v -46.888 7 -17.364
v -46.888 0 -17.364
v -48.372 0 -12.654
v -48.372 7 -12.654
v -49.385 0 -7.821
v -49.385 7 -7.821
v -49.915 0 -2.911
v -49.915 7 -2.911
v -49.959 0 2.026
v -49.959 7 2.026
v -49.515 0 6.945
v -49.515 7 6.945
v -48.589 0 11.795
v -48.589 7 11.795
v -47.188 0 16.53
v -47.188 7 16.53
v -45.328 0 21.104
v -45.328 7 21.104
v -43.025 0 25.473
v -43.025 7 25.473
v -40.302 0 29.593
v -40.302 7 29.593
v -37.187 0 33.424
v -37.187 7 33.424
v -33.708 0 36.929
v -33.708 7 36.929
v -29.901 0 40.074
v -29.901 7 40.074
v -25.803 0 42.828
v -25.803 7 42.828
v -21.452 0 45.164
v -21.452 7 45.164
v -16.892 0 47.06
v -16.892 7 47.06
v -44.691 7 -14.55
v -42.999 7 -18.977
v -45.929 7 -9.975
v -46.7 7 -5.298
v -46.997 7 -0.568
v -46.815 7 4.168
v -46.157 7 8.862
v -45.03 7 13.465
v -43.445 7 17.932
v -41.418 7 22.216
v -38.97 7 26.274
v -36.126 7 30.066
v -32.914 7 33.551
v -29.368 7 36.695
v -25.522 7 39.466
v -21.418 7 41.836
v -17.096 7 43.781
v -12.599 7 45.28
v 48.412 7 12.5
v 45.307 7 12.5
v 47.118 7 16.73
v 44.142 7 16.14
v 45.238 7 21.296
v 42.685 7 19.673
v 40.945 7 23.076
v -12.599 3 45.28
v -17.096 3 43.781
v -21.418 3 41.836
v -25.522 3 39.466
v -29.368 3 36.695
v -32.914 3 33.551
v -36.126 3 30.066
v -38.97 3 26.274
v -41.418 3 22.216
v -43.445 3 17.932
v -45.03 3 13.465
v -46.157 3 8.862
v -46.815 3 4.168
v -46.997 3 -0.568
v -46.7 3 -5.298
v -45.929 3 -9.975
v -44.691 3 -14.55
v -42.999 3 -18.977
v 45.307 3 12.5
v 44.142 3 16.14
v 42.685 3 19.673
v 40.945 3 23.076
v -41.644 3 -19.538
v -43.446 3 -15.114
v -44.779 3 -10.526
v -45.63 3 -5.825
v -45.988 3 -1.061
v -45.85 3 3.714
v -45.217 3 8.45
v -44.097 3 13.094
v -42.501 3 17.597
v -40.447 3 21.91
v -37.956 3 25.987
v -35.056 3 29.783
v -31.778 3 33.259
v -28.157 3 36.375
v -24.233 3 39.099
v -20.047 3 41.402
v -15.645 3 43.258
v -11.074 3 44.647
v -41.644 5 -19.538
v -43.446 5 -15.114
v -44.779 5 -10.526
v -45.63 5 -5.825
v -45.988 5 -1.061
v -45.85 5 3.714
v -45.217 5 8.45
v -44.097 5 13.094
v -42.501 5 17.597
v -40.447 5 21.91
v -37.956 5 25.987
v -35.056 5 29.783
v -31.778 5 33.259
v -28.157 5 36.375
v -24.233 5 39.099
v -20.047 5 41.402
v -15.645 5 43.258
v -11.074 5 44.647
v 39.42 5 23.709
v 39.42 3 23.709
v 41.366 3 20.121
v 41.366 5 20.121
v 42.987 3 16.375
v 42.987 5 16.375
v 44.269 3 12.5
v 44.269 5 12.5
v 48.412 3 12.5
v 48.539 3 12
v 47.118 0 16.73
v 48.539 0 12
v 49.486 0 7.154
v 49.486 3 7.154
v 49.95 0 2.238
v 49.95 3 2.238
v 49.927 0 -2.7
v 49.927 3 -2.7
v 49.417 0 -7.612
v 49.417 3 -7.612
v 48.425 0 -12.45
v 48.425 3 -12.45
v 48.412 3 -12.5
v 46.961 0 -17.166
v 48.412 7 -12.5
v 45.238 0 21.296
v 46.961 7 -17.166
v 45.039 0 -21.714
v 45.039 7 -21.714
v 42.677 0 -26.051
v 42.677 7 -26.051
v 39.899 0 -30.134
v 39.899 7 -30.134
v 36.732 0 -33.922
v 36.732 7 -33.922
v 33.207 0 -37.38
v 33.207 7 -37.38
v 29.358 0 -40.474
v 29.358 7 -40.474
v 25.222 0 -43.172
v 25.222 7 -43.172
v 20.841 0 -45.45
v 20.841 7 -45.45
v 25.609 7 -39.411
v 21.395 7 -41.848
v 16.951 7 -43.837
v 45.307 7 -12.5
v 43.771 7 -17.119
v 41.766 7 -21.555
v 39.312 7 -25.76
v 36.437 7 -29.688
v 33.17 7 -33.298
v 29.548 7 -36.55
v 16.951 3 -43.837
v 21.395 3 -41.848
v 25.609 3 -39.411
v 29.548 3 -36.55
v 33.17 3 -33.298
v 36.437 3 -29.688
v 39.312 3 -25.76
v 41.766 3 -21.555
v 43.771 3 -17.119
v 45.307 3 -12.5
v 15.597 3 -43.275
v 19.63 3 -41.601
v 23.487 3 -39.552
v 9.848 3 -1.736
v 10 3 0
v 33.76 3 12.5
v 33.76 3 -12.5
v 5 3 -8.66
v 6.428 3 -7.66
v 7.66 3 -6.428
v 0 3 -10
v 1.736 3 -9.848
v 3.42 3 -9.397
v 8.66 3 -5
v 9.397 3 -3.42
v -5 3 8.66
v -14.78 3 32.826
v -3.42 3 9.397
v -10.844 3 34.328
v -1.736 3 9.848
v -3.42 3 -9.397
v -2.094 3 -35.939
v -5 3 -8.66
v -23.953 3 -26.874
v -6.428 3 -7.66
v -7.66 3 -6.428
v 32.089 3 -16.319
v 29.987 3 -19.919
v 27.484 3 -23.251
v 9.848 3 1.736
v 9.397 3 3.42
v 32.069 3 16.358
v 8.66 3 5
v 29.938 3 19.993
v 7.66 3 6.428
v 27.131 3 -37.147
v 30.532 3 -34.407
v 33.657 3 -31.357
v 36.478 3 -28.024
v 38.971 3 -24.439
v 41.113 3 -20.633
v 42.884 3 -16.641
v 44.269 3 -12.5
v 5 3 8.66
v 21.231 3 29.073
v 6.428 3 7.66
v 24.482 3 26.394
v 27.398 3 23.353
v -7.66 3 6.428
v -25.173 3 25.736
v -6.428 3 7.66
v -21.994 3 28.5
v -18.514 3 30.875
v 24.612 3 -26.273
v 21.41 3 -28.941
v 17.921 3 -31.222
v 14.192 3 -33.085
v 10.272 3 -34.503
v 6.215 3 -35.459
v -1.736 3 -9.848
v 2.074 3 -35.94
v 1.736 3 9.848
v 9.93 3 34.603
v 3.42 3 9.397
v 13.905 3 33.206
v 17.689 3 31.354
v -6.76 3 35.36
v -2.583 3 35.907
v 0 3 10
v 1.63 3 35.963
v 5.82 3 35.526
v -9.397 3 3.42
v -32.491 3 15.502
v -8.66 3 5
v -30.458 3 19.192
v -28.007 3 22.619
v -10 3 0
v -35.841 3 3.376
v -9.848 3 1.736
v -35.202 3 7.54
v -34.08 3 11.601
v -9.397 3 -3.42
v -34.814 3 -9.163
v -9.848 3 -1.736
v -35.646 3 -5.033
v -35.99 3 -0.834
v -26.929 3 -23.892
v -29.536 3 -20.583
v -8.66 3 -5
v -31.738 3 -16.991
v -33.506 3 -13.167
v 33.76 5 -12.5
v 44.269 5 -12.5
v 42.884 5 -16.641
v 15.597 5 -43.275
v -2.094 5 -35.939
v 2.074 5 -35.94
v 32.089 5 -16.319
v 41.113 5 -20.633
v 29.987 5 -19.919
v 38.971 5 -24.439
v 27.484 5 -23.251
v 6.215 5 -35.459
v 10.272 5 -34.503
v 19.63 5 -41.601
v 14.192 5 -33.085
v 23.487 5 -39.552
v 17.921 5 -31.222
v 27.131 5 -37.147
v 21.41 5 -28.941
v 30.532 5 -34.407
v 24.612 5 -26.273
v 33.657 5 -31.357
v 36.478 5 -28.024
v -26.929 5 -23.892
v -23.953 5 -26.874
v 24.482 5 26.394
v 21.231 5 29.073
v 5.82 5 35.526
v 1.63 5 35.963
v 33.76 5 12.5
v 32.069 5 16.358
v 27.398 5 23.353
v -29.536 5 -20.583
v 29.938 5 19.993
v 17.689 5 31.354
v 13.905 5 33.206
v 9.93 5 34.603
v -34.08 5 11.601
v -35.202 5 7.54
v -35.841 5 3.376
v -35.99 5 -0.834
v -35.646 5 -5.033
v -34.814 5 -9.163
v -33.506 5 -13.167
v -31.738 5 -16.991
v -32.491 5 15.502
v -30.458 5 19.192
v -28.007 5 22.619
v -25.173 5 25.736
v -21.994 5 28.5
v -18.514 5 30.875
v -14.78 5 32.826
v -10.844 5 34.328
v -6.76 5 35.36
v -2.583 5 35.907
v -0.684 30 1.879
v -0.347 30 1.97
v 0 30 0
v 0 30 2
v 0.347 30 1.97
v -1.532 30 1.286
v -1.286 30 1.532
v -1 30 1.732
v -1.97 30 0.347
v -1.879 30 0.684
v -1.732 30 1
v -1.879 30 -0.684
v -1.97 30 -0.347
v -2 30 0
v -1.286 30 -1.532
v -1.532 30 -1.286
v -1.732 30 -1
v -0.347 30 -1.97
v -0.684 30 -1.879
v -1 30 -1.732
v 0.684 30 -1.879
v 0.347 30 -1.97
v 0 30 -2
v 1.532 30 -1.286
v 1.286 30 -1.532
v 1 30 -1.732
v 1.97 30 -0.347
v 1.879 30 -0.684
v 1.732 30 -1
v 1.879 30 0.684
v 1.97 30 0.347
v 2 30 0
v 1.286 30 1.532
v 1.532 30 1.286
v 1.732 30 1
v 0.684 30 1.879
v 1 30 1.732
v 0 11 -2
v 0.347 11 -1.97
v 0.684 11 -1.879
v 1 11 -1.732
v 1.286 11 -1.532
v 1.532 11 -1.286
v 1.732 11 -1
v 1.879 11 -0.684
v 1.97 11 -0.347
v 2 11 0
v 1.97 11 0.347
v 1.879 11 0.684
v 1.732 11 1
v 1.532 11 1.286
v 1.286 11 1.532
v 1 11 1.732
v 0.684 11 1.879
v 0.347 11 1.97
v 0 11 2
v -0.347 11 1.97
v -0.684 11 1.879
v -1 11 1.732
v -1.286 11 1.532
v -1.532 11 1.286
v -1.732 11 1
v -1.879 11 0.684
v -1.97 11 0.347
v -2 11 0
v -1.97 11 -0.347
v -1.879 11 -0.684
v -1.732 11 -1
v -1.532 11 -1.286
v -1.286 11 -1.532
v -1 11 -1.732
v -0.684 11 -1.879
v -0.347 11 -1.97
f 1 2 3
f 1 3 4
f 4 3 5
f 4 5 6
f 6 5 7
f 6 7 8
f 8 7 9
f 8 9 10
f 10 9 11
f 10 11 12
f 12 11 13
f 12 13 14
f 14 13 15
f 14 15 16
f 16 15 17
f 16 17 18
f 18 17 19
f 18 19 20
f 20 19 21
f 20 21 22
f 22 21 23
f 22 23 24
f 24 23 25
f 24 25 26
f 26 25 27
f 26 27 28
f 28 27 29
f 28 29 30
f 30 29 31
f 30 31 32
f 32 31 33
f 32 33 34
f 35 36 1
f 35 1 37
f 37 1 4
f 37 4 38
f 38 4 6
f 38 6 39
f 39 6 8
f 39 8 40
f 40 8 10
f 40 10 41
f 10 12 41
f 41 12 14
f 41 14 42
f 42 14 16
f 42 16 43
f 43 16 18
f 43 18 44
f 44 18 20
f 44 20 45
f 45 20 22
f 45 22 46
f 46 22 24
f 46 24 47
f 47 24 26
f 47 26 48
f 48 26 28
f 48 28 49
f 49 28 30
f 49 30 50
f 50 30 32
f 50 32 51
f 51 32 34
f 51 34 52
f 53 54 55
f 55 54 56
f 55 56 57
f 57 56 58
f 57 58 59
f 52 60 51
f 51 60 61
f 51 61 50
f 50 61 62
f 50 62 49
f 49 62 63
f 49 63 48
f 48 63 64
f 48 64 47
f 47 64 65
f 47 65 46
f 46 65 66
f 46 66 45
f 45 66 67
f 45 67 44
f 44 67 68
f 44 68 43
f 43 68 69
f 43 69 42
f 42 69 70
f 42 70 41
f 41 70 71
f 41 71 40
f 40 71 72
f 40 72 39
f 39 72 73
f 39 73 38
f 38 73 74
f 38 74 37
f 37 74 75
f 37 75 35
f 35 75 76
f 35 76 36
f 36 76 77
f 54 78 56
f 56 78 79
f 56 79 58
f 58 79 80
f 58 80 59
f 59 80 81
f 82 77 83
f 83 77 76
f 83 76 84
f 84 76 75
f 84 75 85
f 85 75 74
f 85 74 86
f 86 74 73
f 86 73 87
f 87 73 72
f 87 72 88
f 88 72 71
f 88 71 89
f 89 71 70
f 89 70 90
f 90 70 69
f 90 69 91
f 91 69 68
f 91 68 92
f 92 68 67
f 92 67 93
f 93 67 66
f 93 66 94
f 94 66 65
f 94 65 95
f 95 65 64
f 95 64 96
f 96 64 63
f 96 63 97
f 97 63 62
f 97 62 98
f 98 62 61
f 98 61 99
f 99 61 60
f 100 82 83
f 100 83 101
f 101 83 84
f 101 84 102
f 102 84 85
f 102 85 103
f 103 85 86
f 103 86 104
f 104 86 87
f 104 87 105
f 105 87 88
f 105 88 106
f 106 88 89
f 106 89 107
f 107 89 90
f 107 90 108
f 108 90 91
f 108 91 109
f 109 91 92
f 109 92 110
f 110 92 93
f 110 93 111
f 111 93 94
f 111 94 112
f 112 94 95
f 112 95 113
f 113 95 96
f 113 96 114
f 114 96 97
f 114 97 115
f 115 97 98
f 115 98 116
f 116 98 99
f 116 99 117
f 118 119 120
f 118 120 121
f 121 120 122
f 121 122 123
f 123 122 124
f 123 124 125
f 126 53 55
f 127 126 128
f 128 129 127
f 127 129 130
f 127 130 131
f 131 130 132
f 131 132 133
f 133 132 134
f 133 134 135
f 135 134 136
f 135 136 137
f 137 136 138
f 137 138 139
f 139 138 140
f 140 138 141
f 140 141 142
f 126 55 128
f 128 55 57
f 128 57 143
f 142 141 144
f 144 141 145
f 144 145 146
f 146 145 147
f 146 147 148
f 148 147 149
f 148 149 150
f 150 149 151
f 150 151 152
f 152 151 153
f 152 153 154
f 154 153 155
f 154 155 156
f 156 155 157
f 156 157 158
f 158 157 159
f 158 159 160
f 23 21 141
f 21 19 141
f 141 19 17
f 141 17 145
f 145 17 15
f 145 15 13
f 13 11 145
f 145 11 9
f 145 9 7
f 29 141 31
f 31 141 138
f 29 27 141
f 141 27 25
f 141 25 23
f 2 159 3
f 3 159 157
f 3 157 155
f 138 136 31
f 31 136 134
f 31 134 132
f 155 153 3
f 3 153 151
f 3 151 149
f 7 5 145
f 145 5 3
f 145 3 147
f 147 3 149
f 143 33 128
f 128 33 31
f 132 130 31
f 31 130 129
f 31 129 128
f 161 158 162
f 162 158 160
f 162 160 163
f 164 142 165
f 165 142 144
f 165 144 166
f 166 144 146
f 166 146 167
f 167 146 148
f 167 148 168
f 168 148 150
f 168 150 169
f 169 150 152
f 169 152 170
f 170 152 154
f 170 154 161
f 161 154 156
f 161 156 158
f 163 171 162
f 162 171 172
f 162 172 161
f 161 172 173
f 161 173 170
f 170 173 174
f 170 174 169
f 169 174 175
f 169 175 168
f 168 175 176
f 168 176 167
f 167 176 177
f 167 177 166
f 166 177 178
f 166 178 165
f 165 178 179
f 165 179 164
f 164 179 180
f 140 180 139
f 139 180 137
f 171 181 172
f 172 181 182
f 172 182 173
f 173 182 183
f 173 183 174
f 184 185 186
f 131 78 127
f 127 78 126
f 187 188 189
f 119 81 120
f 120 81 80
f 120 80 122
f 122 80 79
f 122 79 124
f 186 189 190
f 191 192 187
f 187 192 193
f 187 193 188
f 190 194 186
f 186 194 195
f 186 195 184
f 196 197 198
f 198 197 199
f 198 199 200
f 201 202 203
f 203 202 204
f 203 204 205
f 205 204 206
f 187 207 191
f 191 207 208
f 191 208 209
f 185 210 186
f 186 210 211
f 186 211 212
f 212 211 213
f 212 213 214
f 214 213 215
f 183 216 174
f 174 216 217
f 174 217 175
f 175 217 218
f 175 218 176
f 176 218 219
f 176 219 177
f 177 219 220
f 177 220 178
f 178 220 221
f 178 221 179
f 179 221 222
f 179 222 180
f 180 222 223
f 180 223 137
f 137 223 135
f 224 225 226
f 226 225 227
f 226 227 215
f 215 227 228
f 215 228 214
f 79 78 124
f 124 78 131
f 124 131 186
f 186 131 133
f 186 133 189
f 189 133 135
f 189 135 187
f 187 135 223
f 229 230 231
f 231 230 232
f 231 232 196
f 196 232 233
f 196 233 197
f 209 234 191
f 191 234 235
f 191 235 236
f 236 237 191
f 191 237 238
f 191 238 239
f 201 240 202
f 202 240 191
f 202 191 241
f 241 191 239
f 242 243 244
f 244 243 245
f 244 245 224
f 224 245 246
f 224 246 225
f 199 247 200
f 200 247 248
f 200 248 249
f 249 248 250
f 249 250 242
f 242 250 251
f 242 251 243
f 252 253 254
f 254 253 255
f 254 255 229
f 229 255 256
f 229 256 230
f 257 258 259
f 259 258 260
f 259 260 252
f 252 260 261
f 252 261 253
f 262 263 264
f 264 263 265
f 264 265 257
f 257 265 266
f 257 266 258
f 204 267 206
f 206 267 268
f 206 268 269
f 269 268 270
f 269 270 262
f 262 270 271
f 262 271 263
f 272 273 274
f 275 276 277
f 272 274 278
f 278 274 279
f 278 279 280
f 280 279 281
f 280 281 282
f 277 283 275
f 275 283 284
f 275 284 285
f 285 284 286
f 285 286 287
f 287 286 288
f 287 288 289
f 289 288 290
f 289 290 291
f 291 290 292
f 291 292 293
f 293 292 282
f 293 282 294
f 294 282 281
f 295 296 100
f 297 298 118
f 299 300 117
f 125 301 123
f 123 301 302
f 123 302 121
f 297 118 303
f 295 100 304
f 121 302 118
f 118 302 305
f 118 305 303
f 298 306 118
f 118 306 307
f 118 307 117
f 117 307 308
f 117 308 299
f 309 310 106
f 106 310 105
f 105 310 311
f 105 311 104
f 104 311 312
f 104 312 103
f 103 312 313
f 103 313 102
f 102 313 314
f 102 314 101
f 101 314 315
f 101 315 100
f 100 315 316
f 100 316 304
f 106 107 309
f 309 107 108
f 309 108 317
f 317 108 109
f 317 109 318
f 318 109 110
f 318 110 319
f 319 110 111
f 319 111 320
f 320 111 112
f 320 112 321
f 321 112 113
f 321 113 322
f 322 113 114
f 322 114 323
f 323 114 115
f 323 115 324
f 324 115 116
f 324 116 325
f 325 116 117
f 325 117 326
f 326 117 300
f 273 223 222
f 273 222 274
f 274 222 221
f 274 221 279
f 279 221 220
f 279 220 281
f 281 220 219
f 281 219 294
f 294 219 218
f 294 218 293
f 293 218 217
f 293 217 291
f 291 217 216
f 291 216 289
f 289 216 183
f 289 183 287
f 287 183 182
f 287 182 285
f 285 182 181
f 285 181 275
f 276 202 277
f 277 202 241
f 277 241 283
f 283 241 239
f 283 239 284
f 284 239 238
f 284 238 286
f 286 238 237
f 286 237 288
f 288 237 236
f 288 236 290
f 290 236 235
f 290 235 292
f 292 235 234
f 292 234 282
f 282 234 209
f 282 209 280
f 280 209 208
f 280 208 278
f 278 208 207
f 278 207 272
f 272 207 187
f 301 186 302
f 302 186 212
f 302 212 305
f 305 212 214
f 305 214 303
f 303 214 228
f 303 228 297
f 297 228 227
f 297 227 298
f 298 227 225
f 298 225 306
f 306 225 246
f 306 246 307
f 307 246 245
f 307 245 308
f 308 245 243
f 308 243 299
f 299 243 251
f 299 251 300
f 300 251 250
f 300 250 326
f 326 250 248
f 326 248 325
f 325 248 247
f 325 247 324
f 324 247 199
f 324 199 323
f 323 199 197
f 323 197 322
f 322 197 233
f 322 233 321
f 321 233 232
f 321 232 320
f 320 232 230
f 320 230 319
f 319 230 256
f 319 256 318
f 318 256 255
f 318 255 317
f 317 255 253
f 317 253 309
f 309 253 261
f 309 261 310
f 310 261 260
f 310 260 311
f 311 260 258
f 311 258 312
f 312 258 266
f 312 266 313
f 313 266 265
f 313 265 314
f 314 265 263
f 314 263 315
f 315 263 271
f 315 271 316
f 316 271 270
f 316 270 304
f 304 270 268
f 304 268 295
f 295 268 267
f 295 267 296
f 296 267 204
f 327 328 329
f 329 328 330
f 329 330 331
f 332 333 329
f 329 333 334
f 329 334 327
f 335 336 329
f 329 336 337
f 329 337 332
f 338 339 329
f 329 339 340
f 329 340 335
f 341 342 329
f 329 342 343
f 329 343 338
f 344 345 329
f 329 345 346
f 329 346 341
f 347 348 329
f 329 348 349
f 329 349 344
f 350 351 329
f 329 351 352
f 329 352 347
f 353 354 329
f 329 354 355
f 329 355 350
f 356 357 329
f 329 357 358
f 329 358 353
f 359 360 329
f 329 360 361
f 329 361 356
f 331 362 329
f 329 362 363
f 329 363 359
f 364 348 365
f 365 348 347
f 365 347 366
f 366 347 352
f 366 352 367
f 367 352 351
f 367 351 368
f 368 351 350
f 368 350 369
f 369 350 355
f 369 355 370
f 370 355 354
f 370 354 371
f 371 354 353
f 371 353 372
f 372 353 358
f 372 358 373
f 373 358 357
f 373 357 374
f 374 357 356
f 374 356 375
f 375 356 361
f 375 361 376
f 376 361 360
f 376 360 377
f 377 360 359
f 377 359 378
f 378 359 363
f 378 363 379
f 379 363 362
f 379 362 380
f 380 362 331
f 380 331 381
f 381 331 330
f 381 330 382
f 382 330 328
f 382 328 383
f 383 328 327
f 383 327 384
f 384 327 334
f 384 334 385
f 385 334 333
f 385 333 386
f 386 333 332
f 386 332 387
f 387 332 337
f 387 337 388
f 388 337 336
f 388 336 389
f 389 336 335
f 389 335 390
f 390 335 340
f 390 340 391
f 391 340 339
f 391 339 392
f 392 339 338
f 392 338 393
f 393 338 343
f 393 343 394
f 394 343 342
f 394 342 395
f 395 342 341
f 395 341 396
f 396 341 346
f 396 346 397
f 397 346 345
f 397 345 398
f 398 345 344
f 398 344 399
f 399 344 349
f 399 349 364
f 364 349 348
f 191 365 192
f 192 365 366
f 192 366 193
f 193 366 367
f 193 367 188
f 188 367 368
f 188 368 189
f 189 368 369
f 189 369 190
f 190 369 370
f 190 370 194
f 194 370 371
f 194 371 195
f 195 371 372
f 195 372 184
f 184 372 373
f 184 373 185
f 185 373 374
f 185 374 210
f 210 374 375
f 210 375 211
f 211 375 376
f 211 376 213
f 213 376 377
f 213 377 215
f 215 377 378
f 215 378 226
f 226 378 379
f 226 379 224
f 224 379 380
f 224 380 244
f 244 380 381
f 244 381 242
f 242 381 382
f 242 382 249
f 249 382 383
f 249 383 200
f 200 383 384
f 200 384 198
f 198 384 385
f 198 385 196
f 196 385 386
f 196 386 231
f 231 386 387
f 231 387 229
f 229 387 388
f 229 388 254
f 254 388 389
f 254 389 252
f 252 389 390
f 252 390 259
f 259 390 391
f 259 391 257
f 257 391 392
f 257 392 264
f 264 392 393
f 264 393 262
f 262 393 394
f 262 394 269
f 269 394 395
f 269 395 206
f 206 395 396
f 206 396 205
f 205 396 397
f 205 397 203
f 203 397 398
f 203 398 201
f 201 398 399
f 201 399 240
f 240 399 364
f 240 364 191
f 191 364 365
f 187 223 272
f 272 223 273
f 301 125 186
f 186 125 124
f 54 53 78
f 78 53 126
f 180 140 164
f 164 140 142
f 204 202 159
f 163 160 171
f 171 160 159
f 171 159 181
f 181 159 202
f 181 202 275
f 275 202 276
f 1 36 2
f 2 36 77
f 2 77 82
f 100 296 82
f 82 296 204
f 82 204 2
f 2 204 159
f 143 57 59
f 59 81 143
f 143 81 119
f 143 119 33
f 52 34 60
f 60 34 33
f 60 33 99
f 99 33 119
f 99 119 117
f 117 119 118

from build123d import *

# Parameters (mm, degrees)
SKETCH1_R           = 50
BOSS_EXTRUDE1_DEPTH = 3
SKETCH2_R           = 50
SKETCH2_R_2         = 47
BOSS_EXTRUDE2_DEPTH = 4
SKETCH3_R           = 2
BOSS_EXTRUDE3_DEPTH = 27
CHAMFER1_SIZE       = 8
SKETCH4_R           = 46
SKETCH4_R_2         = 36
BOSS_EXTRUDE4_DEPTH = 2
CUT_EXTRUDE1_START  = 80
SKETCH5_W           = 25
SKETCH5_H           = 8
CUT_EXTRUDE1_DEPTH  = 59
CUT_EXTRUDE2_DEPTH  = 10
CUT_EXTRUDE3_DEPTH  = 10


with BuildPart() as part:
    # Sketch1 → Boss-Extrude1 (new body)
    with BuildSketch(Plane(origin=(0, 0, 0), x_dir=(1, 0, 0), z_dir=(0, 1, 0))):
        Circle(SKETCH1_R)
    extrude(amount=BOSS_EXTRUDE1_DEPTH)

    # Sketch2 → Boss-Extrude2 (add)
    with BuildSketch(Plane(origin=(0, 3, 0), x_dir=(1, 0, 0), z_dir=(0, 1, 0))):
        Circle(SKETCH2_R)
        Circle(SKETCH2_R_2, mode=Mode.SUBTRACT)
    extrude(amount=BOSS_EXTRUDE2_DEPTH)

    # Sketch3 → Boss-Extrude3 (add)
    with BuildSketch(Plane(origin=(0, 3, 0), x_dir=(1, 0, 0), z_dir=(0, 1, 0))):
        Circle(SKETCH3_R)
    extrude(amount=BOSS_EXTRUDE3_DEPTH)

    # Chamfer1
    chamfer1_edges = [part.edges().sort_by_distance(p)[0] for p in [
        (-2, 3, 0),
    ]]
    chamfer(chamfer1_edges, length=CHAMFER1_SIZE)

    # Sketch4 → Boss-Extrude4 (add)
    with BuildSketch(Plane(origin=(0, 3, 0), x_dir=(1, 0, 0), z_dir=(0, 1, 0))):
        Circle(SKETCH4_R)
        Circle(SKETCH4_R_2, mode=Mode.SUBTRACT)
    extrude(amount=BOSS_EXTRUDE4_DEPTH)

    # Sketch5 → Cut-Extrude1 (cut)
    with BuildSketch(Plane(origin=(0, 0, 0), x_dir=(0, 0, -1), z_dir=(1, 0, 0)).offset(CUT_EXTRUDE1_START)):
        with Locations((0, 7)):
            Rectangle(SKETCH5_W, SKETCH5_H)
    extrude(amount=-CUT_EXTRUDE1_DEPTH, mode=Mode.SUBTRACT)

    # Sketch7 → Cut-Extrude2 (cut)
    with BuildSketch(Plane.XZ):
        with BuildLine():
            Line((-119.395726794, 97.143761629), (-5.083168687, 49.740942855))
            ThreePointArc((-5.083168687, 49.740942855), (19.152450403, 46.186401067), (38.791481396, 31.547123024))
            Line((38.791481396, 31.547123024), (134.629479077, -8.194715589))
            Line((134.629479077, -8.194715589), (149.847747334, 28.504350406))
            Line((149.847747334, 28.504350406), (-104.177458536, 133.842827624))
            Line((-104.177458536, 133.842827624), (-119.395726794, 97.143761629))
        make_face()
        with BuildLine():
            ThreePointArc((38.791481396, 31.547123024), (41.025780027, 28.581206642), (43.033800963, 25.457650612))
            Line((43.033800963, 25.457650612), (133.097283044, -11.889627674))
            Line((133.097283044, -11.889627674), (134.629479077, -8.194715589))
            Line((134.629479077, -8.194715589), (38.791481396, 31.547123024))
        make_face()
        with BuildLine():
            ThreePointArc((38.791481396, 31.547123024), (19.152450403, 46.186401067), (-5.083168687, 49.740942855))
            Line((-5.083168687, 49.740942855), (38.791481396, 31.547123024))
        make_face()
        with BuildLine():
            ThreePointArc((-5.083168687, 49.740942855), (-8.76068428, 49.226521418), (-12.389880318, 48.440591096))
            Line((-12.389880318, 48.440591096), (43.033800963, 25.457650612))
            ThreePointArc((43.033800963, 25.457650612), (41.025780027, 28.581206642), (38.791481396, 31.547123024))
            Line((38.791481396, 31.547123024), (-5.083168687, 49.740942855))
        make_face()
        with BuildLine():
            Line((-120.927922826, 93.448849543), (-12.389880318, 48.440591096))
            ThreePointArc((-12.389880318, 48.440591096), (-8.76068428, 49.226521418), (-5.083168687, 49.740942855))
            Line((-5.083168687, 49.740942855), (-119.395726794, 97.143761629))
            Line((-119.395726794, 97.143761629), (-120.927922826, 93.448849543))
        make_face()
        with BuildLine():
            Line((-11.858515668, -55.706448378), (84.665757499, -95.732869831))
            Line((84.665757499, -95.732869831), (92.00979772, -81.45716056))
            Line((92.00979772, -81.45716056), (86.695290109, -79.253355087))
            Line((86.695290109, -79.253355087), (87.844437133, -76.482171023))
            Line((87.844437133, -76.482171023), (16.892477306, -47.060006486))
            ThreePointArc((16.892477306, -47.060006486), (-19.152450403, -46.186401067), (-45.238103903, -21.295867094))
            Line((-45.238103903, -21.295867094), (-140.17236541, 18.071212676))
            Line((-140.17236541, 18.071212676), (-142.248536864, 13.06449628))
            Line((-142.248536864, 13.06449628), (-142.248536864, 11.37179915))
            Line((-142.248536864, 11.37179915), (-11.858515668, -55.706448378))
        make_face()
        with BuildLine():
            ThreePointArc((-45.238103903, -21.295867094), (-19.152450403, -46.186401067), (16.892477306, -47.060006486))
            Line((16.892477306, -47.060006486), (-45.238103903, -21.295867094))
        make_face()
    extrude(amount=-CUT_EXTRUDE2_DEPTH, mode=Mode.SUBTRACT)

    # Sketch8 → Cut-Extrude3 (cut)
    with BuildSketch(Plane.XZ):
        with BuildLine():
            ThreePointArc((16.892477306, -47.060006486), (18.883795364, -46.296892689), (20.840762361, -45.44956132))
            Line((20.840762361, -45.44956132), (18.04162433, -44.288822422))
            Line((18.04162433, -44.288822422), (-44.088956879, -18.52468303))
            Line((-44.088956879, -18.52468303), (-46.888094909, -17.363944131))
            ThreePointArc((-46.888094909, -17.363944131), (-46.105033689, -19.347502903), (-45.238103903, -21.295867094))
            Line((-45.238103903, -21.295867094), (16.892477306, -47.060006486))
        make_face()
        with BuildLine():
            Line((41.387159819, 22.892766048), (41.884653939, 22.686466548))
            Line((41.884653939, 22.686466548), (45.238103903, 21.295867094))
            ThreePointArc((45.238103903, 21.295867094), (44.184979435, 23.402726173), (43.033800963, 25.457650612))
            Line((43.033800963, 25.457650612), (-12.389880318, 48.440591096))
            ThreePointArc((-12.389880318, 48.440591096), (-14.657442494, 47.803340673), (-16.892477306, 47.060006486))
            Line((-16.892477306, 47.060006486), (-13.539027342, 45.669407032))
            Line((-13.539027342, 45.669407032), (-11.390013124, 44.778259697))
            Line((-11.390013124, 44.778259697), (41.387159819, 22.892766048))
        make_face()
    extrude(amount=-CUT_EXTRUDE3_DEPTH, mode=Mode.SUBTRACT)


solid = part.part
